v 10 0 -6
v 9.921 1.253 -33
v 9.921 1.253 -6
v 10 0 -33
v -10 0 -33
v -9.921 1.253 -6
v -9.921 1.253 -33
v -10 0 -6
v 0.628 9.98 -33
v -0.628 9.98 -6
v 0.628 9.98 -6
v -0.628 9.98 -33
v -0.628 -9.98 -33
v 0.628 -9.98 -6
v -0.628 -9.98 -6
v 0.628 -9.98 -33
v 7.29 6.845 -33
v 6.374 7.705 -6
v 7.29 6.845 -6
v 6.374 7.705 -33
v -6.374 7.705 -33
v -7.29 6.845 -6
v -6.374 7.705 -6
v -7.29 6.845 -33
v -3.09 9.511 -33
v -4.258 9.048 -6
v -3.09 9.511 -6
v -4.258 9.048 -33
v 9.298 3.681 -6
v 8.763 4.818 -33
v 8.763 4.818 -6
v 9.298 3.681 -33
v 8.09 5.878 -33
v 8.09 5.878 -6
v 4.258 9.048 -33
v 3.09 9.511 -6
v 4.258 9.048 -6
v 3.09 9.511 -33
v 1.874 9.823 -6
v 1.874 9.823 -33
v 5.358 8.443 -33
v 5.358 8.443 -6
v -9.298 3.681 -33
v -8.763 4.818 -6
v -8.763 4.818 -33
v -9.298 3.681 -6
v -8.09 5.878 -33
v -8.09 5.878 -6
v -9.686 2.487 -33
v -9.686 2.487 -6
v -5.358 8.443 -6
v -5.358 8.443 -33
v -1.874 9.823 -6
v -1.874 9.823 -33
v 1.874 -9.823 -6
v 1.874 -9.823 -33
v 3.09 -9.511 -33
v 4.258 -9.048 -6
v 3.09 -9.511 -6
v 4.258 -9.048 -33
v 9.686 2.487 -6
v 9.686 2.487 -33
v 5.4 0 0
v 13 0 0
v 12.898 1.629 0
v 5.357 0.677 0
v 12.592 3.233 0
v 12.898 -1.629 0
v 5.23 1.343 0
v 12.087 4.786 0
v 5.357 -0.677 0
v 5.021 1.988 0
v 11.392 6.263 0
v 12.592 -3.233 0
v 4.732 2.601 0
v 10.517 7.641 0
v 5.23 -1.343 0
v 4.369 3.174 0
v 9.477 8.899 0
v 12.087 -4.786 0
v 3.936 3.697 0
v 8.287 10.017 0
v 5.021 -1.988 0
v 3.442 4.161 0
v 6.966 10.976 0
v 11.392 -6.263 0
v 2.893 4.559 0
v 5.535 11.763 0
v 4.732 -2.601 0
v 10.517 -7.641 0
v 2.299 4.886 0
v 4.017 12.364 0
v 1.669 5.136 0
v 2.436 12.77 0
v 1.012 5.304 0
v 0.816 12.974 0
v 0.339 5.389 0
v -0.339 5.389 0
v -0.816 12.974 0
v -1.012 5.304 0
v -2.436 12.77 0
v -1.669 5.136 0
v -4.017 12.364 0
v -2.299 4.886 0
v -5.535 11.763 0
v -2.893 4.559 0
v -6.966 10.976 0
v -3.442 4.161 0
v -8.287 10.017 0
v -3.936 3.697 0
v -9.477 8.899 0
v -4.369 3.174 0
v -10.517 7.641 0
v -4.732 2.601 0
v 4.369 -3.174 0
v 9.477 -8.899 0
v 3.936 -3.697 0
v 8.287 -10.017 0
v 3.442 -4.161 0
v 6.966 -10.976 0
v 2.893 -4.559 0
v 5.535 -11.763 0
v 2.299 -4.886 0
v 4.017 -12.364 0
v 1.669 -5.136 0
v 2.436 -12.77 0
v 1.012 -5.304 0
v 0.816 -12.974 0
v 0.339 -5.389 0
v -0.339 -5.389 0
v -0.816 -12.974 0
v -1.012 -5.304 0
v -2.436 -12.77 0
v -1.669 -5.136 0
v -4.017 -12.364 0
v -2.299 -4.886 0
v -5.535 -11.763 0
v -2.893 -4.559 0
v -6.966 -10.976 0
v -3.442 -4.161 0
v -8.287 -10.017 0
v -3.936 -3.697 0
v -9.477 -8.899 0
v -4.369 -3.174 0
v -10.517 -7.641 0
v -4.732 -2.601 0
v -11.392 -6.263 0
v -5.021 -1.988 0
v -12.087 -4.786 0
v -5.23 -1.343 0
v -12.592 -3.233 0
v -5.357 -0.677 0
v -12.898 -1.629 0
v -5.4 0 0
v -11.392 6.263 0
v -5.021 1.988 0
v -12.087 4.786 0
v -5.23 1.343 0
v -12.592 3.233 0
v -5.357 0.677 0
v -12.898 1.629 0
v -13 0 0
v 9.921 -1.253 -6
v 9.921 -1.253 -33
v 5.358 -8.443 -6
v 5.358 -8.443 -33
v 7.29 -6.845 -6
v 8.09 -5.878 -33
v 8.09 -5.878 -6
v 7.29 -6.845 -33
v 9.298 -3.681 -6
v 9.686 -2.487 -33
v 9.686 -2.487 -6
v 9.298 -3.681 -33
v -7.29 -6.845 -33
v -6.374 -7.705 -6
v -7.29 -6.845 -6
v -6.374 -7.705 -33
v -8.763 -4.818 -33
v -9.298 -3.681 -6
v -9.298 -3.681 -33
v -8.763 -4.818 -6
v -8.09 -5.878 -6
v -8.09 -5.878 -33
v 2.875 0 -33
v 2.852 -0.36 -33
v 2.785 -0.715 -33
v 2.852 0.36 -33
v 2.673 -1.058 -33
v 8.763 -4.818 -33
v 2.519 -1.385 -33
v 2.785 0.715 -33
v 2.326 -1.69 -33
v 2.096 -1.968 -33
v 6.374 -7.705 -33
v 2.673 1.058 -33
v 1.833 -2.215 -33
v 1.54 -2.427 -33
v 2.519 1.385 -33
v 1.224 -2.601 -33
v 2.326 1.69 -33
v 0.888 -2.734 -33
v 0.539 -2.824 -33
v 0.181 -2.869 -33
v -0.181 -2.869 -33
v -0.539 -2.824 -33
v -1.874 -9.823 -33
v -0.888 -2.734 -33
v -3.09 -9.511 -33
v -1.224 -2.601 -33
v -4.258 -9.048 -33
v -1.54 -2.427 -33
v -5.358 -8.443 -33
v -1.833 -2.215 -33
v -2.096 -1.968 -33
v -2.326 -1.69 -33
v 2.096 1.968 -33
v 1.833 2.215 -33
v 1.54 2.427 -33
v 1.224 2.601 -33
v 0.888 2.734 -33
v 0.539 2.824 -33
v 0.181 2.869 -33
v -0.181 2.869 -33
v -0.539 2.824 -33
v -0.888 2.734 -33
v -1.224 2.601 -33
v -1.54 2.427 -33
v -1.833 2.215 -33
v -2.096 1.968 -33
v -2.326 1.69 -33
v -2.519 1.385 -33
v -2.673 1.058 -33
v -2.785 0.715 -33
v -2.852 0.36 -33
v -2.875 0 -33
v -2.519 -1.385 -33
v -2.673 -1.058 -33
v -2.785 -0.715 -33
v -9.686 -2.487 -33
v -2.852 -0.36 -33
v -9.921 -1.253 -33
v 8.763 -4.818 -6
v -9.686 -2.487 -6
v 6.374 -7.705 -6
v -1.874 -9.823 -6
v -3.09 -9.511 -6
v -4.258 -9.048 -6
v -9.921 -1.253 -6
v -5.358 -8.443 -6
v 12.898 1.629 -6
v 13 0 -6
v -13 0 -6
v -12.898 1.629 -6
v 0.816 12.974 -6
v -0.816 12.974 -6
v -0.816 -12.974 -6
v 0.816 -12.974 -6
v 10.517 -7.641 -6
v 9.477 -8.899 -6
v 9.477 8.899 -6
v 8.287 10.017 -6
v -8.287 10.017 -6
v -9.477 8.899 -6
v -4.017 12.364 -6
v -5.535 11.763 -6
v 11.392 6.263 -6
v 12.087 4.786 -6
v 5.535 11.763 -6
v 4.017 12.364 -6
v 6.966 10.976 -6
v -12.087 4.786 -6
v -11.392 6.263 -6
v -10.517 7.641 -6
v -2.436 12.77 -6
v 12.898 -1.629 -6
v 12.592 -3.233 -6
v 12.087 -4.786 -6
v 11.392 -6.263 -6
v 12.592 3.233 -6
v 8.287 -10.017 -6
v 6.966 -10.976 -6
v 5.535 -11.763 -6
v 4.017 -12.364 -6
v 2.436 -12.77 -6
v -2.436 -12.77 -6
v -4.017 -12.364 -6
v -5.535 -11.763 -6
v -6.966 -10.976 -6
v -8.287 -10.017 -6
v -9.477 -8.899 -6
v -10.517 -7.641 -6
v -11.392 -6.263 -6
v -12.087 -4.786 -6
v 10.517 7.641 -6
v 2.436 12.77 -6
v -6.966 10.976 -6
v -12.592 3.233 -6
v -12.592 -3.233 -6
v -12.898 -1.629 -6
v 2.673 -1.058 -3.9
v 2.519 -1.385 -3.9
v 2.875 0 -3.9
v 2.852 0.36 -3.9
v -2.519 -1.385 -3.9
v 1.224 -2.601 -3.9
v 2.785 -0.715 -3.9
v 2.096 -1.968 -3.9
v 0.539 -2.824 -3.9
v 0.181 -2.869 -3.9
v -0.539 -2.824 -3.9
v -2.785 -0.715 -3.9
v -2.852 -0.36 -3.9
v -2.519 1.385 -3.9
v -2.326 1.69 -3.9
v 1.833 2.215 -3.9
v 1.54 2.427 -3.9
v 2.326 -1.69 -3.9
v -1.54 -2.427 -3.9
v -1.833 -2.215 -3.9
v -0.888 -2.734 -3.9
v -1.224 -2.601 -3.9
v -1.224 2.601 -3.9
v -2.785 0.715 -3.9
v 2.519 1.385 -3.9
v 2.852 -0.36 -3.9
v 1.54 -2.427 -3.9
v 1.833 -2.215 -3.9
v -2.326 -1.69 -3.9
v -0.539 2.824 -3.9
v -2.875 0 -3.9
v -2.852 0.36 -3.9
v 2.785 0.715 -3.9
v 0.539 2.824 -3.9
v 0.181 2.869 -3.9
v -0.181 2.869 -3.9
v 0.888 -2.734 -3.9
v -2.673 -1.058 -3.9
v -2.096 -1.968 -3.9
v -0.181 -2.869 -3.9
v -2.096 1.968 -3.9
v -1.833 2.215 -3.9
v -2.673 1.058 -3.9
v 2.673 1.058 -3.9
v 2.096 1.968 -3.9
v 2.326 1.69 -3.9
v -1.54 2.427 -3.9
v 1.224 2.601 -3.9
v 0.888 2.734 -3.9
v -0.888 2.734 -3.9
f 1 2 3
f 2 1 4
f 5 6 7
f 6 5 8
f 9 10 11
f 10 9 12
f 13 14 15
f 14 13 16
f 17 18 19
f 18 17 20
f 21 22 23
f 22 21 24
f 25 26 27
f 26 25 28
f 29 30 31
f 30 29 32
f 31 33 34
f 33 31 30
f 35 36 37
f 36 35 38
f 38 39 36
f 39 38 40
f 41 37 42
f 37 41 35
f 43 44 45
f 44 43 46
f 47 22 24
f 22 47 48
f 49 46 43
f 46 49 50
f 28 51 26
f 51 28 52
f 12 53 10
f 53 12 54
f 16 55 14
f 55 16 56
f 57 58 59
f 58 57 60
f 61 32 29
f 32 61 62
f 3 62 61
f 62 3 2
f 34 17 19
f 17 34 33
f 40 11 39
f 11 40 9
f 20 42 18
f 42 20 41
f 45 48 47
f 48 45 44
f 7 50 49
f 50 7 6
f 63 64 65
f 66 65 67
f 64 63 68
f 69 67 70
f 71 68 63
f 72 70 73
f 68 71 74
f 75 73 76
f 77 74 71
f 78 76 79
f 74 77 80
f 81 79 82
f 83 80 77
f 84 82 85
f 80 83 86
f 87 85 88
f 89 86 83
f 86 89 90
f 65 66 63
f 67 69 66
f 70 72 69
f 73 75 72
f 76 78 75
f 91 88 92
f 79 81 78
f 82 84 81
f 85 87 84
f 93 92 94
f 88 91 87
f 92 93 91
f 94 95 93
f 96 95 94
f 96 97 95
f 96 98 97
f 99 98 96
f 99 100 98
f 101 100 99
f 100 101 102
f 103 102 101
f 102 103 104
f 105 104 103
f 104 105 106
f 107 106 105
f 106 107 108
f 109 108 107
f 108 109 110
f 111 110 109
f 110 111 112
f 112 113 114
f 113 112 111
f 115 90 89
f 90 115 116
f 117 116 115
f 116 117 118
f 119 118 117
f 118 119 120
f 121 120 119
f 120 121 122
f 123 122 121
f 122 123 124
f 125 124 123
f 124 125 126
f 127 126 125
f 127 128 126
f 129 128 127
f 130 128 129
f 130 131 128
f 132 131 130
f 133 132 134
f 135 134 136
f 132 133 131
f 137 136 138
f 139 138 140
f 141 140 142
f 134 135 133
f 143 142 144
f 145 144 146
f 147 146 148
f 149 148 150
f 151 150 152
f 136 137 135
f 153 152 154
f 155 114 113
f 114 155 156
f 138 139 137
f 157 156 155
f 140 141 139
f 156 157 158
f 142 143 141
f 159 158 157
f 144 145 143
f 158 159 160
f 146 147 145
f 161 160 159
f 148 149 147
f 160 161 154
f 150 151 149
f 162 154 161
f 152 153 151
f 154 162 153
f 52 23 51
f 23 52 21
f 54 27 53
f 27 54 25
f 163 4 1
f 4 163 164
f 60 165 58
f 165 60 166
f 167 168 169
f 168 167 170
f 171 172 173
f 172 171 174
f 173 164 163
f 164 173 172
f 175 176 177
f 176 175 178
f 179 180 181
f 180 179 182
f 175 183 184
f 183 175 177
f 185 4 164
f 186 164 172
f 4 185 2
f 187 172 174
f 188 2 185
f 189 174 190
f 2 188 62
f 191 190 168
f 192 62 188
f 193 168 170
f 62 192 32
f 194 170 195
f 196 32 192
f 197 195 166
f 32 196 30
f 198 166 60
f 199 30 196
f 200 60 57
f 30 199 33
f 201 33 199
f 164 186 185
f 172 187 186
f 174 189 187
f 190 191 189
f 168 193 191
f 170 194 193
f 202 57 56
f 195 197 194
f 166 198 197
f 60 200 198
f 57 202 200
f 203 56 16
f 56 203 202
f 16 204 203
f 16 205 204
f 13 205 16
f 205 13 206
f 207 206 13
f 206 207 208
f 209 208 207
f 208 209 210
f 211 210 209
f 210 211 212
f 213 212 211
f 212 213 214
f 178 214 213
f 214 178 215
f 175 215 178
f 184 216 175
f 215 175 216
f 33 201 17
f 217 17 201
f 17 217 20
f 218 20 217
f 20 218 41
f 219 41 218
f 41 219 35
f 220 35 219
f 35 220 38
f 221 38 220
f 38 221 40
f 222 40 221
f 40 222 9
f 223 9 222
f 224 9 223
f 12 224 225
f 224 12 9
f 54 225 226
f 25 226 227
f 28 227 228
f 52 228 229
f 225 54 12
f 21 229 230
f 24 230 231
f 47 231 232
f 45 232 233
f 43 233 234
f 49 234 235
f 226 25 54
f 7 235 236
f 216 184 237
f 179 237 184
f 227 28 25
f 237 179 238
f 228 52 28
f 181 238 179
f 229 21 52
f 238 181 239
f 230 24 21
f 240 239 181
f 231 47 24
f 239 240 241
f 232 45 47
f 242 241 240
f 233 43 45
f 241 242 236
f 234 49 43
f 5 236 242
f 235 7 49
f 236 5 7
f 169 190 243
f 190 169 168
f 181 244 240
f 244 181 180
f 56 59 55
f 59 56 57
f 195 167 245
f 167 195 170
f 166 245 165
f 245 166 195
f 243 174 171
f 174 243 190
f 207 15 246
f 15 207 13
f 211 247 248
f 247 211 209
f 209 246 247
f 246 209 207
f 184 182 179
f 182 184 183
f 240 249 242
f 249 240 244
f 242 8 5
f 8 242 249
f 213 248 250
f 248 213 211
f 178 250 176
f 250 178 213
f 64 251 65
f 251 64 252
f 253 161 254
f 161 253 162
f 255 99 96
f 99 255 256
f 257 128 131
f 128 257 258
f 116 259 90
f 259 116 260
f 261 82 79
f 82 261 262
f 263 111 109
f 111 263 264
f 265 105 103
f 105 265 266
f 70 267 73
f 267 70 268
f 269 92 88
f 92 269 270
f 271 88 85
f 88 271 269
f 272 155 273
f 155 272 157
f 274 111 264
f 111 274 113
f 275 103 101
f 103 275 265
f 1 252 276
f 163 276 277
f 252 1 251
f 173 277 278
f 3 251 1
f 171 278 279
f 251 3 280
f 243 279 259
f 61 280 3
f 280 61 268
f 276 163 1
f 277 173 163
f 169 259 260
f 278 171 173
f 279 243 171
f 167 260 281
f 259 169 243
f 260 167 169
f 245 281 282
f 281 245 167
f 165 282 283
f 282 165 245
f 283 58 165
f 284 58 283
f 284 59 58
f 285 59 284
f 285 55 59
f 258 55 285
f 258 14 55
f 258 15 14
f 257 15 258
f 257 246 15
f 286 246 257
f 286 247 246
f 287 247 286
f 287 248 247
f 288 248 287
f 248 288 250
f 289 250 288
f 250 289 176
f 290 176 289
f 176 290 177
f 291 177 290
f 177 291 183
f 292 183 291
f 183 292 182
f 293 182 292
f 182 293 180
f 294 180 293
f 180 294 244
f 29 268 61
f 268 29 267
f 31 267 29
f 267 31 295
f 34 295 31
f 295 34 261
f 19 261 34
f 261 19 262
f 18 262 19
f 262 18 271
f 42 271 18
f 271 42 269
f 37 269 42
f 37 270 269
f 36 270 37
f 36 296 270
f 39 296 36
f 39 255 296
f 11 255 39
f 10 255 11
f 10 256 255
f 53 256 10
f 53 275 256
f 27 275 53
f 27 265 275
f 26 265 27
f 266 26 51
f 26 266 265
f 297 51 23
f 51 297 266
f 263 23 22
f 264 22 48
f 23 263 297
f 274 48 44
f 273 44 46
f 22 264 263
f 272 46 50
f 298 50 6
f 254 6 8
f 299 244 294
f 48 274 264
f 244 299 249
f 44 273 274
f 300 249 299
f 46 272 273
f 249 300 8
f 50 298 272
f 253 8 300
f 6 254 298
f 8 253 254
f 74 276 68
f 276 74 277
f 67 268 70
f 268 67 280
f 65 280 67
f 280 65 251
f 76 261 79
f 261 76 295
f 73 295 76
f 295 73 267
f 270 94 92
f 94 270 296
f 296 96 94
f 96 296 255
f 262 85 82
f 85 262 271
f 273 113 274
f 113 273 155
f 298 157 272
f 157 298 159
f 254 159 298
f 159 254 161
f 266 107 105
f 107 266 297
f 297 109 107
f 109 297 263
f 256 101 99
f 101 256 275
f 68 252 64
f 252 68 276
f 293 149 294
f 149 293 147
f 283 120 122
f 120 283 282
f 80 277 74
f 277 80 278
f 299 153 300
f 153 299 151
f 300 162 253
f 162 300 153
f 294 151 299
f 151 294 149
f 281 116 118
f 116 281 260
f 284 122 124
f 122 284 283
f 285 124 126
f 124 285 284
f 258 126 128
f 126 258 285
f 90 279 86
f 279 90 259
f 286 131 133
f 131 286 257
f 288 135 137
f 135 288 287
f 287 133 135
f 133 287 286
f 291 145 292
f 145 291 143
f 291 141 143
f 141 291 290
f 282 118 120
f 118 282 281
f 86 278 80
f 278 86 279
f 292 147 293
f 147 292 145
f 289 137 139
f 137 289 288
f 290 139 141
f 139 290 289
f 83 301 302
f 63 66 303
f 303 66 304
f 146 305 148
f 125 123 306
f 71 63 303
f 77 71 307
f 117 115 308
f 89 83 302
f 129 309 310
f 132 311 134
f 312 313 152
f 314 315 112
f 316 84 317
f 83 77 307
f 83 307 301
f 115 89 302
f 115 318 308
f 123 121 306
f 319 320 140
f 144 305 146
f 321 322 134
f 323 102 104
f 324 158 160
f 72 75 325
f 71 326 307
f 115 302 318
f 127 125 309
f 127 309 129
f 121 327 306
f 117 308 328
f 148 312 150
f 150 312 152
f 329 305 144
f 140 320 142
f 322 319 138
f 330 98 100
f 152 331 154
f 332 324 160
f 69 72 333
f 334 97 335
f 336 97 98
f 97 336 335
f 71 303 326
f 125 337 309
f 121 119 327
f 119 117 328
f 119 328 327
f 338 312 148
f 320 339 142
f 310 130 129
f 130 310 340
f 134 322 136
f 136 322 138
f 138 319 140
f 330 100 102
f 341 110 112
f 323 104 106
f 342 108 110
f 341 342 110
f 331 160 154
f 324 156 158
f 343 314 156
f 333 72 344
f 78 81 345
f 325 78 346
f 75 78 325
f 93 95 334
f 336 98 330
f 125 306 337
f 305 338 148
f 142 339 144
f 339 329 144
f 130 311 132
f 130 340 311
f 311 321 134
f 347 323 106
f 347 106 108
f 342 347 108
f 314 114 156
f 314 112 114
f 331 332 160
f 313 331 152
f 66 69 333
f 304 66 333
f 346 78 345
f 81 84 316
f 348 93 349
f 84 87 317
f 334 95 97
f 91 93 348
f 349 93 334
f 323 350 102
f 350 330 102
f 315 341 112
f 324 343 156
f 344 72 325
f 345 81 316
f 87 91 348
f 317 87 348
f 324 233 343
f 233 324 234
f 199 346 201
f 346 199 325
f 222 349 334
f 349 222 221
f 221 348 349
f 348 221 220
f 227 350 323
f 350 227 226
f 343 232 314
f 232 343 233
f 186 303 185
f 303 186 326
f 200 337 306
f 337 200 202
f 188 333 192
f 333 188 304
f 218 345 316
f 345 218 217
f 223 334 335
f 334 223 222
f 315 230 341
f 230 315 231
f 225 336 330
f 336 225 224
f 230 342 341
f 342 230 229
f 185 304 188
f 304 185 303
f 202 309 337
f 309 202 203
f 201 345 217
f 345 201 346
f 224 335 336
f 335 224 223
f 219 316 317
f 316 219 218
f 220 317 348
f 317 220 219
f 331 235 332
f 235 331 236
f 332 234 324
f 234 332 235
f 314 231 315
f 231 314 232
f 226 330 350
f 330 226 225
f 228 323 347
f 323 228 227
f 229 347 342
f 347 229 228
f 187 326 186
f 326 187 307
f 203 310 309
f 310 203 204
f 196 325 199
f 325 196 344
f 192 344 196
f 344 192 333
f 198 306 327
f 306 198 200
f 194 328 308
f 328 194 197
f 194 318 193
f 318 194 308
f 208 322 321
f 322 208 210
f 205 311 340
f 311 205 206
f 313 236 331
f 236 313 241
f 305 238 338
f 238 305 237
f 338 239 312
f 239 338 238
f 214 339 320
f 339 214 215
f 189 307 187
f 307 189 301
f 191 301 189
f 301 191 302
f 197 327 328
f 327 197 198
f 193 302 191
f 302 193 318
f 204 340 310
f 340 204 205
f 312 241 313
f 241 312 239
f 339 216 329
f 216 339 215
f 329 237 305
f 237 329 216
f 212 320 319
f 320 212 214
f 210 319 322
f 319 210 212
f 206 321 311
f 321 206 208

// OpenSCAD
$fn = 50;


difference() {
	union() {
		translate(v = [0, 0, -33.0000000000]) {
			cylinder(h = 33, r = 10.0000000000);
		}
		translate(v = [0, 0, -6.0000000000]) {
			cylinder(h = 6, r = 13.0000000000);
		}
	}
	union() {
		translate(v = [0, 0, 0]) {
			rotate(a = [0, 0, 0]) {
				difference() {
					union() {
						#translate(v = [0, 0, -33.0000000000]) {
							cylinder(h = 33, r = 2.6000000000);
						}
						#translate(v = [0, 0, -3.9000000000]) {
							cylinder(h = 3.9000000000, r1 = 2.8750000000, r2 = 5.4000000000);
						}
						#translate(v = [0, 0, -33.0000000000]) {
							cylinder(h = 33, r = 2.8750000000);
						}
						#translate(v = [0, 0, -33.0000000000]) {
							cylinder(h = 33, r = 2.6000000000);
						}
					}
					union();
				}
			}
		}
	}
}
